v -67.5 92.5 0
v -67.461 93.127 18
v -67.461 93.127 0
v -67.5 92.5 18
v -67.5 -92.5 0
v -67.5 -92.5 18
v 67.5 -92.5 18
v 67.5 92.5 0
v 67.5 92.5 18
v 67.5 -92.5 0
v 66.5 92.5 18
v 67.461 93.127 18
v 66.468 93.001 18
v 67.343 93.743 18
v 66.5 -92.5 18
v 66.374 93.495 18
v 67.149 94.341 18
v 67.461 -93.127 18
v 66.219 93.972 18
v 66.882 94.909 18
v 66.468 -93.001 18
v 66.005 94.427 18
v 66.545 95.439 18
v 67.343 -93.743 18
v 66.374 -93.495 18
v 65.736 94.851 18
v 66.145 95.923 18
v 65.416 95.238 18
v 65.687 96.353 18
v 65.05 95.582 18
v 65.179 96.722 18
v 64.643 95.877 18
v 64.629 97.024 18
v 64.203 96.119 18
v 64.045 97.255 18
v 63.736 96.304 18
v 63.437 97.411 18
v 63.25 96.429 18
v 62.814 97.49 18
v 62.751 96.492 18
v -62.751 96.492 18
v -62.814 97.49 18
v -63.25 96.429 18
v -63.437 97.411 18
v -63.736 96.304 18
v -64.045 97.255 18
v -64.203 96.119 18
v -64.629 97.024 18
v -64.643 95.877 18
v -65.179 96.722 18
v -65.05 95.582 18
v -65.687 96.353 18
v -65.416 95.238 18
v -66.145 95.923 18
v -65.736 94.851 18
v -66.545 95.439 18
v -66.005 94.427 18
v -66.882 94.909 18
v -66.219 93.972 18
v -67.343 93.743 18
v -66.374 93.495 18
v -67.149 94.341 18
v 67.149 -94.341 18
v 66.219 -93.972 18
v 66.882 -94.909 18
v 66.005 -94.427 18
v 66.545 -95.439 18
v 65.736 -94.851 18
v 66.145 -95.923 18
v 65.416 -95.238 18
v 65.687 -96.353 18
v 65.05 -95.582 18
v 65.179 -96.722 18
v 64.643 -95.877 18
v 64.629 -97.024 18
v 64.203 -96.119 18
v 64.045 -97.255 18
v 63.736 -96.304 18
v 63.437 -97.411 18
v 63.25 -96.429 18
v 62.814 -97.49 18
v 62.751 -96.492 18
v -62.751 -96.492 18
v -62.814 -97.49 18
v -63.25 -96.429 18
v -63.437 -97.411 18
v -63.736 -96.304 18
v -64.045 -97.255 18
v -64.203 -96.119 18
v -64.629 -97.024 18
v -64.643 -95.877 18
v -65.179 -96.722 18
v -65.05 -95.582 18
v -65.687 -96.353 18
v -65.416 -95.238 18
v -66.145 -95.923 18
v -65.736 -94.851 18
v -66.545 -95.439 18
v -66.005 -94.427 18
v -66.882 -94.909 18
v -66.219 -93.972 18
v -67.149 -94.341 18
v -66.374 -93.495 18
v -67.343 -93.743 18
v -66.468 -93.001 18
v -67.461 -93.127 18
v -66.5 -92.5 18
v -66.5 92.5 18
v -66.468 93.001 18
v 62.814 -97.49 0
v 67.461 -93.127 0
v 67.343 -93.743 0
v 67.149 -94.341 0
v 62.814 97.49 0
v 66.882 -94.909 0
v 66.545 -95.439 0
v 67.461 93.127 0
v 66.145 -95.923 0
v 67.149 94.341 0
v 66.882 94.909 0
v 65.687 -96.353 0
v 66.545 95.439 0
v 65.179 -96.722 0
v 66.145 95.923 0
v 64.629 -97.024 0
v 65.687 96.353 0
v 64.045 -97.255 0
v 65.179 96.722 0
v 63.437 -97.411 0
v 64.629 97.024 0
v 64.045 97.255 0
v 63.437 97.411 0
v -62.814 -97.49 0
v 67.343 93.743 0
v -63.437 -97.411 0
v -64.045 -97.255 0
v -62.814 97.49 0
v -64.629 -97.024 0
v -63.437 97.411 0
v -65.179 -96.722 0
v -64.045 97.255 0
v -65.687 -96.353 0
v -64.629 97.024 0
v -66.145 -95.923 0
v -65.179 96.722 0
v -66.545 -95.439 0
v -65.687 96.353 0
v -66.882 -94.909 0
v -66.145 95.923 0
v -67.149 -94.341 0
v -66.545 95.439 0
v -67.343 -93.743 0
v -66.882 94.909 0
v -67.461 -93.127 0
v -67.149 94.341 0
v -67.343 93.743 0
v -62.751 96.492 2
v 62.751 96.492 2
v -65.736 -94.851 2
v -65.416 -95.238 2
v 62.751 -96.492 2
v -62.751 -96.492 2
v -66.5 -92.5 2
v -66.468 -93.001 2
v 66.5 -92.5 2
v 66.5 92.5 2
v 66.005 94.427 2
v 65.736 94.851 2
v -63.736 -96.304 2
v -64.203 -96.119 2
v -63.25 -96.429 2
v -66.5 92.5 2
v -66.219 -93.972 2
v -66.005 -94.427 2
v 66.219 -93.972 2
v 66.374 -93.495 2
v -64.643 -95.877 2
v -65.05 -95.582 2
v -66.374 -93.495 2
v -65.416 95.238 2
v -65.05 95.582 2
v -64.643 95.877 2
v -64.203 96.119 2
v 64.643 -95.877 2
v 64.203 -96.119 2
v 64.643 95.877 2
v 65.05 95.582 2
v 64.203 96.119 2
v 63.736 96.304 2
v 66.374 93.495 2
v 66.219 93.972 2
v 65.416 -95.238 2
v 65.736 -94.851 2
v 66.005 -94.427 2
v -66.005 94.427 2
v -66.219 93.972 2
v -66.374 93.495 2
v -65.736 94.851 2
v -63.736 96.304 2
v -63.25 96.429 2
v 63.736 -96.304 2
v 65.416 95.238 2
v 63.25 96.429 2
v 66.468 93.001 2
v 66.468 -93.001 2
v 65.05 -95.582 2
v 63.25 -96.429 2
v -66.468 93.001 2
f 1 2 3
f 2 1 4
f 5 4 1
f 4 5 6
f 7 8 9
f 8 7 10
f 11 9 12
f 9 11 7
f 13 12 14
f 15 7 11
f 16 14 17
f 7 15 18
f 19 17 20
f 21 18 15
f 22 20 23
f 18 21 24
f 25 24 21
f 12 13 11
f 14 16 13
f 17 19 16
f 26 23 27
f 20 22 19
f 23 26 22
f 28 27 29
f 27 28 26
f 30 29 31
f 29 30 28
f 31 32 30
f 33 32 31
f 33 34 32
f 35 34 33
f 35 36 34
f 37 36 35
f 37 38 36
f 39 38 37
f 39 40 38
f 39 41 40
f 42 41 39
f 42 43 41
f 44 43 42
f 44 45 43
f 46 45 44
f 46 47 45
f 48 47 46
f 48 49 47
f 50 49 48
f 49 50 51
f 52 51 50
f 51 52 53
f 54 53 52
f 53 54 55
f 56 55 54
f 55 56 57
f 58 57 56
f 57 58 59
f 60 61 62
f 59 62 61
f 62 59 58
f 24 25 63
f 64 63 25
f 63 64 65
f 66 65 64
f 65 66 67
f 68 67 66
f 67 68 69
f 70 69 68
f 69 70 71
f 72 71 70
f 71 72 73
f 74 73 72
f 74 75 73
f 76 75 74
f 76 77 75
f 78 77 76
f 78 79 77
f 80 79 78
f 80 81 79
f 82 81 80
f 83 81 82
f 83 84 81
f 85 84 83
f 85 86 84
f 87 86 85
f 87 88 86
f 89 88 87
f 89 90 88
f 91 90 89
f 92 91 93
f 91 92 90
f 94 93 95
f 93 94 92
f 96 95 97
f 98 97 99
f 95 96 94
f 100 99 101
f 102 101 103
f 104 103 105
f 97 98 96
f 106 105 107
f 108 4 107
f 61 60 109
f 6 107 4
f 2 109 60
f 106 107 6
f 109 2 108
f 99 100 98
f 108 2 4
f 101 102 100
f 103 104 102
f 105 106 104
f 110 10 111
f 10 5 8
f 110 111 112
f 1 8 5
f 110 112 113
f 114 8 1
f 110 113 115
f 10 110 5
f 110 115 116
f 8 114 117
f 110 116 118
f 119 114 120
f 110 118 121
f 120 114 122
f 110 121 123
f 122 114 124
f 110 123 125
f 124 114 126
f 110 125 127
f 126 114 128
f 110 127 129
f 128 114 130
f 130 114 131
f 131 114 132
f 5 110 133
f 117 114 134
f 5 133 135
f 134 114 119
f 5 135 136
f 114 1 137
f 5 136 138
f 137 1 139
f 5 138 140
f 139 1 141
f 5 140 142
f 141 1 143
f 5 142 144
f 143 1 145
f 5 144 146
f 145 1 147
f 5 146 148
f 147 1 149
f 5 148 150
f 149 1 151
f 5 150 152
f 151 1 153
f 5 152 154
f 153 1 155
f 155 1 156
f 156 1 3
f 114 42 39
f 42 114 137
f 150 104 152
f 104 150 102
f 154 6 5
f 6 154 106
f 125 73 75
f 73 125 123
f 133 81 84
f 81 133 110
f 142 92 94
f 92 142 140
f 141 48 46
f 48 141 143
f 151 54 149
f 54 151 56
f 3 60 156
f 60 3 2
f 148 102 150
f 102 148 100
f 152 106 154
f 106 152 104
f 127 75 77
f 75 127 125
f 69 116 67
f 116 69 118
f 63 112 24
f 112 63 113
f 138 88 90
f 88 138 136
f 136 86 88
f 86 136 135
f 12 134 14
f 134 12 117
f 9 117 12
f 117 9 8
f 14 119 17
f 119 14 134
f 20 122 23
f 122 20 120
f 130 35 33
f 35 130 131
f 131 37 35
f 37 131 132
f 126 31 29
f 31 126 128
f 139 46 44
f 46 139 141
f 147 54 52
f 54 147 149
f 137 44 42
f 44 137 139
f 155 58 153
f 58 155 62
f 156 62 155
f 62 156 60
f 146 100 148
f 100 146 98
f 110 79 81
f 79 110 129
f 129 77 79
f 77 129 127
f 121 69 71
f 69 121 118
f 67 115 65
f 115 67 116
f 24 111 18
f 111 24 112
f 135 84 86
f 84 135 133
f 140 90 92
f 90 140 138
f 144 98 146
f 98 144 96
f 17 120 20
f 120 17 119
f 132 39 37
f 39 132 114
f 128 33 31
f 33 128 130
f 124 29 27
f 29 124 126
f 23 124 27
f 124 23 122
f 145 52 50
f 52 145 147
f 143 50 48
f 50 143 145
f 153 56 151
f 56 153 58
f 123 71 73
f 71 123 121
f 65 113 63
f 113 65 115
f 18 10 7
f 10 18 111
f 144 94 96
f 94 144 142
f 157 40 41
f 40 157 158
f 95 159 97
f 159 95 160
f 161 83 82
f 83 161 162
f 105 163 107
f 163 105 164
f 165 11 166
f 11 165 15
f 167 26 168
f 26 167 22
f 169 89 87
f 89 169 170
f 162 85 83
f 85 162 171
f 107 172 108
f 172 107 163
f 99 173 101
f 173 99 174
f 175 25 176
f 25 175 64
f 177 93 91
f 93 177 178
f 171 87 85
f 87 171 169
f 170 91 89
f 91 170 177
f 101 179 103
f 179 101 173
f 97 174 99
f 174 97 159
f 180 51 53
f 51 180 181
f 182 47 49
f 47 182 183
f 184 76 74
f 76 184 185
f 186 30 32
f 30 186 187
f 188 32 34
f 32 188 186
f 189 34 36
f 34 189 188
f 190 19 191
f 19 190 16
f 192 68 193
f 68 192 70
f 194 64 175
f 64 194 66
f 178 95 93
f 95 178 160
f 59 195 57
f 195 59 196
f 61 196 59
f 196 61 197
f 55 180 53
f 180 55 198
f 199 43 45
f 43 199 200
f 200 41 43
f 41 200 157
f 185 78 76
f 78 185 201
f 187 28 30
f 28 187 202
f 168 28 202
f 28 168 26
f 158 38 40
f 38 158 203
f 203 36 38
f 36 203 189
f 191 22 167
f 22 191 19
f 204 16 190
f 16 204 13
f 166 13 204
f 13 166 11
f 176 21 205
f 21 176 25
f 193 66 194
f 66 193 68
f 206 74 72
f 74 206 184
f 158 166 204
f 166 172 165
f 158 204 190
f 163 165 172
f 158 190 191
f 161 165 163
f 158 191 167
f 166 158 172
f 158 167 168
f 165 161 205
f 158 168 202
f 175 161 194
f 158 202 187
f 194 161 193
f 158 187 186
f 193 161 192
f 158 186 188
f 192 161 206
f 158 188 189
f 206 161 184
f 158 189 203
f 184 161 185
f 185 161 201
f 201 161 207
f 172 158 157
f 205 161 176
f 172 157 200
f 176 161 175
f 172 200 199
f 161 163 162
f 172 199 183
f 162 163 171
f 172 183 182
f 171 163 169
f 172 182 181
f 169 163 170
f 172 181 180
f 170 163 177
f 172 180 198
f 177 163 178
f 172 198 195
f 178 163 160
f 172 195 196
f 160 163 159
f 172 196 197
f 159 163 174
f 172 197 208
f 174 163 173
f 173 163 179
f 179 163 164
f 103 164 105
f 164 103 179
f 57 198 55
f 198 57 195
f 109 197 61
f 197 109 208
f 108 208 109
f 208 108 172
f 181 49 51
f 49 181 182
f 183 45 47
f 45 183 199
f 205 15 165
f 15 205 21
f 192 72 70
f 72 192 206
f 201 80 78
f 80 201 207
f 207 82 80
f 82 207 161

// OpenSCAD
$fn = 50;


difference() {
	union() {
		hull() {
			translate(v = [-62.5000000000, 92.5000000000, 0]) {
				cylinder(h = 18, r = 5);
			}
			translate(v = [62.5000000000, 92.5000000000, 0]) {
				cylinder(h = 18, r = 5);
			}
			translate(v = [-62.5000000000, -92.5000000000, 0]) {
				cylinder(h = 18, r = 5);
			}
			translate(v = [62.5000000000, -92.5000000000, 0]) {
				cylinder(h = 18, r = 5);
			}
		}
	}
	union() {
		translate(v = [0, 0, 2]) {
			hull() {
				translate(v = [-62.5000000000, 92.5000000000, 0]) {
					cylinder(h = 16, r = 4);
				}
				translate(v = [62.5000000000, 92.5000000000, 0]) {
					cylinder(h = 16, r = 4);
				}
				translate(v = [-62.5000000000, -92.5000000000, 0]) {
					cylinder(h = 16, r = 4);
				}
				translate(v = [62.5000000000, -92.5000000000, 0]) {
					cylinder(h = 16, r = 4);
				}
			}
		}
	}
}
